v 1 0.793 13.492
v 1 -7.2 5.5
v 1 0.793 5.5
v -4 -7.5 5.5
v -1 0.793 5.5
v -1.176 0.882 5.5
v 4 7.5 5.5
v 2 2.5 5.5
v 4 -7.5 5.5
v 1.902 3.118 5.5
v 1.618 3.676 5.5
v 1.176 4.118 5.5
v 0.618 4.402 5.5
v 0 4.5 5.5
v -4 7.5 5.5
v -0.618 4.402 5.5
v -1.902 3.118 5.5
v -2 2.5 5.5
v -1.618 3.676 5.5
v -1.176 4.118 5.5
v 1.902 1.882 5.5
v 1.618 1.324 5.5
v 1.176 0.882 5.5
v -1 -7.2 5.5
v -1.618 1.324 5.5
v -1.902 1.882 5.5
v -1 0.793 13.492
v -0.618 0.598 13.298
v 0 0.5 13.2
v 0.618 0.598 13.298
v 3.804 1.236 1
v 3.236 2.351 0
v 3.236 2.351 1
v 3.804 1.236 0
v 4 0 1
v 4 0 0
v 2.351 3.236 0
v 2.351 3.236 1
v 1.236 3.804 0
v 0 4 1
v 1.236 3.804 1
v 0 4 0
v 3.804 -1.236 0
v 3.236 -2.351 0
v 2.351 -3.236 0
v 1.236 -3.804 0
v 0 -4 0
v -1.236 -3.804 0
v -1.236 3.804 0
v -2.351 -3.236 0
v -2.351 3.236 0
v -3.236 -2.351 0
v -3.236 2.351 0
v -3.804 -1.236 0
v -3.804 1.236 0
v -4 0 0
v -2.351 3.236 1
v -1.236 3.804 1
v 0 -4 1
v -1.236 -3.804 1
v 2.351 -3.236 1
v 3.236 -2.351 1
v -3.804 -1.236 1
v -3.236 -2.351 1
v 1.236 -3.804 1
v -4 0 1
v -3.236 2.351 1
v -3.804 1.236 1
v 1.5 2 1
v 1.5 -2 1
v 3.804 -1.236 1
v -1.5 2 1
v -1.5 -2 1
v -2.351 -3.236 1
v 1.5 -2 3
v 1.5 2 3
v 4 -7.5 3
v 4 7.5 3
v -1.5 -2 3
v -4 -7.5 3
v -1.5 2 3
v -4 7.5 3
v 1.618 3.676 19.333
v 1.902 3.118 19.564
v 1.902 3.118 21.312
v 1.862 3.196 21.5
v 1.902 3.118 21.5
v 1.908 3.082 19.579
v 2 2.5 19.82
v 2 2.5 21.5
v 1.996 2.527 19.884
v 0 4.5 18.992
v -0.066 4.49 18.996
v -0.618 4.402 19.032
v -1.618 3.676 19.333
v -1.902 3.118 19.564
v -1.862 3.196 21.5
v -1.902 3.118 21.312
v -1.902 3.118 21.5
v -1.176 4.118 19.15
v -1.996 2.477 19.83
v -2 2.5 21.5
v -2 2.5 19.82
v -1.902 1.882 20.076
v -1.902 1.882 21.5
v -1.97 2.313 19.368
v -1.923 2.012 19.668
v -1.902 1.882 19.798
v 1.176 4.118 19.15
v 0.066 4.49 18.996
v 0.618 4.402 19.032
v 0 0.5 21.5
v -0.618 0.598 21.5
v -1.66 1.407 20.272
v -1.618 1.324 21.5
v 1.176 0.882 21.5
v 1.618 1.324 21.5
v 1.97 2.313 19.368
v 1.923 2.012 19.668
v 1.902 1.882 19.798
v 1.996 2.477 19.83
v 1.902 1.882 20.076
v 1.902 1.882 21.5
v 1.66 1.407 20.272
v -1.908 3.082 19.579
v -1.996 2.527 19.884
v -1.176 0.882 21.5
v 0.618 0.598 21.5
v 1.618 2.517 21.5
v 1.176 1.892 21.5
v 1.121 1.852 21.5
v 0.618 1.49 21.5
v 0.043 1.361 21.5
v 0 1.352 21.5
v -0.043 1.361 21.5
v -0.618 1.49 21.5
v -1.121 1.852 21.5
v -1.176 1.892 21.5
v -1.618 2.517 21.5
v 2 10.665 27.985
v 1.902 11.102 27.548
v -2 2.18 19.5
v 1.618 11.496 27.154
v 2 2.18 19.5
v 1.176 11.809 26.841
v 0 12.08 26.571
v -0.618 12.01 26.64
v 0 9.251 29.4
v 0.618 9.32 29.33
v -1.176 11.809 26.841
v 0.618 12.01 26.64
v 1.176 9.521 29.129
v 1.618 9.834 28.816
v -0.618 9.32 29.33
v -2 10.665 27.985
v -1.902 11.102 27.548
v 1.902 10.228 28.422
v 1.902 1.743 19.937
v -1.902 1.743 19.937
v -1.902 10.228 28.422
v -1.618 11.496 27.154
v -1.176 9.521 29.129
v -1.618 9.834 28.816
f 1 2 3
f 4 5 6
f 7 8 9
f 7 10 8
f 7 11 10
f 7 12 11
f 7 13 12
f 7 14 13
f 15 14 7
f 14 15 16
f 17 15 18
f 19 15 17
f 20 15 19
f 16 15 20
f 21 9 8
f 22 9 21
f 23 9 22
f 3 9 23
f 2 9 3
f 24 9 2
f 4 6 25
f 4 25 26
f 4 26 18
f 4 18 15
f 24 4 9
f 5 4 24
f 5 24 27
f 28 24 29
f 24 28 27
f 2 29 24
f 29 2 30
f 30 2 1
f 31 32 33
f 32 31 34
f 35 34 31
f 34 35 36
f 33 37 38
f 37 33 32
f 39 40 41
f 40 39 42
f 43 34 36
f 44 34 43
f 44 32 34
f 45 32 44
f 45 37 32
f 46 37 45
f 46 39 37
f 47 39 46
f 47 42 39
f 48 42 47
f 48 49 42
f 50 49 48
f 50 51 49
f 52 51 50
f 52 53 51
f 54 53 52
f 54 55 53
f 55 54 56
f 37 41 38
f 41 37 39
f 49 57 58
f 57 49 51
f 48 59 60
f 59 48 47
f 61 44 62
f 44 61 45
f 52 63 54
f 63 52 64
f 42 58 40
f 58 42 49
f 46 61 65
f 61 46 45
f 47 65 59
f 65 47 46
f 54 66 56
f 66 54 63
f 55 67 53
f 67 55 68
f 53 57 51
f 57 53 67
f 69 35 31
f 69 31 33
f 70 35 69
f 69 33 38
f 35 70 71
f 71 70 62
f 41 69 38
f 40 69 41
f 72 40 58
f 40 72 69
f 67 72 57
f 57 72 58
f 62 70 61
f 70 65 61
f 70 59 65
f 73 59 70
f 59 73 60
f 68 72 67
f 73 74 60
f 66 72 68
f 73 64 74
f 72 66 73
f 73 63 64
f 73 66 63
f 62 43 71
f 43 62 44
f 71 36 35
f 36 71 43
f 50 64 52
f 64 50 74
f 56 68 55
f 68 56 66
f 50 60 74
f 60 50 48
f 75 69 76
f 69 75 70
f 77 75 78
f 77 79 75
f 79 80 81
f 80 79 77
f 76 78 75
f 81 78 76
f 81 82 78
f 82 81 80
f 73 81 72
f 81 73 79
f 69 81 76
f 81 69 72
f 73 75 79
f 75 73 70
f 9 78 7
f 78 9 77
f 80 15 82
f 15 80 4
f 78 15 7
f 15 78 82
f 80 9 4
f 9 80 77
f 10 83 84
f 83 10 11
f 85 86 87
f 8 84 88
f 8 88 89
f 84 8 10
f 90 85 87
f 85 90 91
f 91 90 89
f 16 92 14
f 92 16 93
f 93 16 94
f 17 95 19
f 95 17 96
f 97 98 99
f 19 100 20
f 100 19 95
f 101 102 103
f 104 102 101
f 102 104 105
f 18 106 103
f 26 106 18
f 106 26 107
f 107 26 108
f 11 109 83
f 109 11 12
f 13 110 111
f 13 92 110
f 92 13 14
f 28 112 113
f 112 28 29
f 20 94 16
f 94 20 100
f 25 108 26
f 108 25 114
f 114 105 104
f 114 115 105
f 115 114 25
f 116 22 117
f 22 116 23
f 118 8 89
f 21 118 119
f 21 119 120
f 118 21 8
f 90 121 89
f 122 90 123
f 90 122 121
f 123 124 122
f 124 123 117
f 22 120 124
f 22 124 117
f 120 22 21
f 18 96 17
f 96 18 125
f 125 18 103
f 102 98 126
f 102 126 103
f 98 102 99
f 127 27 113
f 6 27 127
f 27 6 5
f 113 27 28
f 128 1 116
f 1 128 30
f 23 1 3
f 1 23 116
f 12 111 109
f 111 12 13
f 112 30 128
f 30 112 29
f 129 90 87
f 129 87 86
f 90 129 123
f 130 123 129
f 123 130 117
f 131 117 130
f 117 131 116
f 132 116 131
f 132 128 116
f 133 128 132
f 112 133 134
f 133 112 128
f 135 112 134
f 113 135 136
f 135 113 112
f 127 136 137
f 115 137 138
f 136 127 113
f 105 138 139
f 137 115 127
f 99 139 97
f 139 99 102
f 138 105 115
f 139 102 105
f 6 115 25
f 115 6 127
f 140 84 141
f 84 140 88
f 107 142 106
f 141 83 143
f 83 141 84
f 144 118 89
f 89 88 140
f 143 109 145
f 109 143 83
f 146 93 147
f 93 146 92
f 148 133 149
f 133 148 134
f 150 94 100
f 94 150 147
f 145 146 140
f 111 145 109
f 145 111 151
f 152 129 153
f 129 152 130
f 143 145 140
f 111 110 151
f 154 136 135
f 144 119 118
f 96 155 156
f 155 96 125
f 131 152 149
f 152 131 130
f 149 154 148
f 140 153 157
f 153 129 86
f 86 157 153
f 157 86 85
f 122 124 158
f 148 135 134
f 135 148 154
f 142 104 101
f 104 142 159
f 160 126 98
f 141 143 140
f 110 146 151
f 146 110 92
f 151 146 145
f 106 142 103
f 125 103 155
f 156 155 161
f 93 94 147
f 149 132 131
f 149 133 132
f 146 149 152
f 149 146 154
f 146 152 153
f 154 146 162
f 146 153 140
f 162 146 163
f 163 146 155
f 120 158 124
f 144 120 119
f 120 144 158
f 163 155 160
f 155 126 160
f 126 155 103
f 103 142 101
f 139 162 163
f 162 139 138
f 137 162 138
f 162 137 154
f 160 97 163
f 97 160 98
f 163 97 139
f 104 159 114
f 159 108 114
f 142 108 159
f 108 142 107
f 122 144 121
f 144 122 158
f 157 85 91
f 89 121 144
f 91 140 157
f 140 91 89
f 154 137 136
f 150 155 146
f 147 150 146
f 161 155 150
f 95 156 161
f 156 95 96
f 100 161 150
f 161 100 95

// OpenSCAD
$fn = 20;
disc_height =  1;
disc_diam   =  8;
stem_width  =  3;
stem_height =  2;
stem_length =  4;
base_height =  2.5;
base_width  =  8;
base_length = 15;
hook_diam   =  4;
hook_height = 16;
hook_end    = 12;

module support() {
    difference() {
        cube( [ 0.5*hook_diam, 0.5*hook_height, 0.5*hook_height ] );
        rotate( [ 45, 0 , 0 ] )
            translate([-hook_diam, 0, 0 ])
            cube( [ 2*hook_diam, 1.5*hook_height, 0.5*hook_height ] );
    }
}

//disc
color( [1, 0, 0] )
cylinder( d = disc_diam, h = disc_height );

//stem
color( [0, 1, 0] )
translate( [-0.5*stem_width, -0.5*stem_length , disc_height])
    cube([ stem_width, stem_length, stem_height ]);
    
//base
color( [0, 0, 1] )
translate( [-0.5*base_width, -0.5*base_length, disc_height+stem_height])
    cube( [ base_width, base_length, base_height ] );
    
//hook
color( [1, 1, 0] )
translate( [0, (1/6)*base_length, disc_height + stem_height + base_height ] )
    cylinder(d = hook_diam, h = hook_height );
translate( [ 0, (1/6)*base_length - 0.08*hook_diam, disc_height + stem_height + base_height + hook_height - 0.5*hook_diam ] )
    rotate( [ -45, 0, 0 ] )
        cylinder( d = hook_diam, h = hook_end );
        
//support
color( [1, 0, 1 ] )
translate( [ -0.25*hook_diam, -0.45*hook_height, disc_height + stem_height + base_height ] )
//    cube( [ 0.5*hook_diam, 0.5*hook_height, 0.5*hook_height ] );
    
support();
